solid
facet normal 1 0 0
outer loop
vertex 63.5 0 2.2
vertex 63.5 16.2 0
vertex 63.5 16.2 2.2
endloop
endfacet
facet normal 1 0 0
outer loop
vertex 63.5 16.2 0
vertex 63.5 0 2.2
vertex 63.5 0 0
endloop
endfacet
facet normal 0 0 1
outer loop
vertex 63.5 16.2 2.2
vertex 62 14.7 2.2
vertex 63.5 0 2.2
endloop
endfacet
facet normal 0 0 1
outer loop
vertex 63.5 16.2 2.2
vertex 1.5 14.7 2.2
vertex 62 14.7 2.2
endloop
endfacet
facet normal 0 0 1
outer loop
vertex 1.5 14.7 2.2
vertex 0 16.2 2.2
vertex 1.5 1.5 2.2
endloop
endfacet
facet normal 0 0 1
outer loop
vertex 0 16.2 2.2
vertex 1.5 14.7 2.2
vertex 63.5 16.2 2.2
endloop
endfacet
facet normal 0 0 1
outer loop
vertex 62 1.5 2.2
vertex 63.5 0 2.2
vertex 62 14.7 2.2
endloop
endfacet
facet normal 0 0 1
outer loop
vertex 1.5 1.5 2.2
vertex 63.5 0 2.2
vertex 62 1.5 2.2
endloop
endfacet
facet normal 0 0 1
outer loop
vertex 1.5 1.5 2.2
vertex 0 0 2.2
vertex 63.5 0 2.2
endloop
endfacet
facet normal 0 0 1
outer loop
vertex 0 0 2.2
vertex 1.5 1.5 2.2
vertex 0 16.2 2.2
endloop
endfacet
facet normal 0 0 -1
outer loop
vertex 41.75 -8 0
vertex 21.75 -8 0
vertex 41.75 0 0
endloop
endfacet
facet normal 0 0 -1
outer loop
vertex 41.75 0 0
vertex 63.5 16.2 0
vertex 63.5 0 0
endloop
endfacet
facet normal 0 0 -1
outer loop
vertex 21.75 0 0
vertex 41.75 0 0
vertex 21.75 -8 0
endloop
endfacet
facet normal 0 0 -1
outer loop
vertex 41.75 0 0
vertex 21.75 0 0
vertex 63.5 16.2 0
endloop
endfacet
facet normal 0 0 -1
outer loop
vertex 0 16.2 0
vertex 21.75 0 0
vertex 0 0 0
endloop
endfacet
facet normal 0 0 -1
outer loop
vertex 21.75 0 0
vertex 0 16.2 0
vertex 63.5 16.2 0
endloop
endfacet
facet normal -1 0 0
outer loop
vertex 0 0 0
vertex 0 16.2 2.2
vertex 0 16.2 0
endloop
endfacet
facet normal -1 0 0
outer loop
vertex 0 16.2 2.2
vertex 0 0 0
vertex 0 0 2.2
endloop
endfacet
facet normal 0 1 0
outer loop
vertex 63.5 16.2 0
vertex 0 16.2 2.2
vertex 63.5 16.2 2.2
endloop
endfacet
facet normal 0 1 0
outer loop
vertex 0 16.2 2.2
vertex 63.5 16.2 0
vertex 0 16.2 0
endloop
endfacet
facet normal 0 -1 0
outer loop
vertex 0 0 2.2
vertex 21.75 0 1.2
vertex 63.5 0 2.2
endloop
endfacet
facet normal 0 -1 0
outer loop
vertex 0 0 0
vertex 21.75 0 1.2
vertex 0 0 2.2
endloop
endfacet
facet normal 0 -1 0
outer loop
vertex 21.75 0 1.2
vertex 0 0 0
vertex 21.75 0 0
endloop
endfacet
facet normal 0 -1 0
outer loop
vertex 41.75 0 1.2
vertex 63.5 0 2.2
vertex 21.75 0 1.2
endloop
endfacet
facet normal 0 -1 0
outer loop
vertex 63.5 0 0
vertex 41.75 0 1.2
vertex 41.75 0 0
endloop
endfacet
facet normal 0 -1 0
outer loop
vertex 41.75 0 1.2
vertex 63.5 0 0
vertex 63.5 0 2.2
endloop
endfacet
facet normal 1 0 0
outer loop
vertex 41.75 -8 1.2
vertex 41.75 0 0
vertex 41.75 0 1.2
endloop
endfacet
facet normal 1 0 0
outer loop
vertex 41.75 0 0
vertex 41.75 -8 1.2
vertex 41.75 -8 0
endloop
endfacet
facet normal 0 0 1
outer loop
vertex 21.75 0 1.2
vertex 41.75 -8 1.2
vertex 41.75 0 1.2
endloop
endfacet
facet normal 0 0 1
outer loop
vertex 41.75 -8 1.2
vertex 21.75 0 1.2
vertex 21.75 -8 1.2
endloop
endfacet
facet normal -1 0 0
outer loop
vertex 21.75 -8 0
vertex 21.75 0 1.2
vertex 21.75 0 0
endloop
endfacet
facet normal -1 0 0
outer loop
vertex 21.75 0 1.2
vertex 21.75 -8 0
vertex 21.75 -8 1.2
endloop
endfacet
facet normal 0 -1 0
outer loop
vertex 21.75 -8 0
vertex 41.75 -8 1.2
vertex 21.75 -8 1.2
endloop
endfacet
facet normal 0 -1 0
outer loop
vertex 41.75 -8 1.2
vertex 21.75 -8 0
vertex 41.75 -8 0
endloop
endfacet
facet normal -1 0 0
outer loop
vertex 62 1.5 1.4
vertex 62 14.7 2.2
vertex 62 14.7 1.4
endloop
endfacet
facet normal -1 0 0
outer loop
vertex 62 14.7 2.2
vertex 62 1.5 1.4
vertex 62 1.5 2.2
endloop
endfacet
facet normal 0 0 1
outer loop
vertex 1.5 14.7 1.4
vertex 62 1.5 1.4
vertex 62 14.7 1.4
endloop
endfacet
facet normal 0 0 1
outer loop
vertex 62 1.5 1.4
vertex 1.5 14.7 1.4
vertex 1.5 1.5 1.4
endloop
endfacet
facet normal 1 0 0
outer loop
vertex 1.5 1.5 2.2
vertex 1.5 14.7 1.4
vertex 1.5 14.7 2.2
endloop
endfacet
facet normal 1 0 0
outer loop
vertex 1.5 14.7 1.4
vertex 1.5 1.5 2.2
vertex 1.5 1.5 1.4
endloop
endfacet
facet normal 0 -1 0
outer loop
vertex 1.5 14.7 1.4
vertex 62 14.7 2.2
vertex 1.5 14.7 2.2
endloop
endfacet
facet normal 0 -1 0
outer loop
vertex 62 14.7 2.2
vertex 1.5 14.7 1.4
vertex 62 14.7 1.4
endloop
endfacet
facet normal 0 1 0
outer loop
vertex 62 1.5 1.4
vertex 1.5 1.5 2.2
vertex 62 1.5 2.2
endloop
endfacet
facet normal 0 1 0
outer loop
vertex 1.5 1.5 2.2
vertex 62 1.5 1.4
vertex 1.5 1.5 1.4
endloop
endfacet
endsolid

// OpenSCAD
// Holder for a printed 60 x 12.7 mm plate (tools in osoba-5-alpr/tools/generate_plates.py).
// Keeps the plate flat and perpendicular - important for ALPR. Glue the tab to the toy car.
plate_w = 60.5; plate_h = 13.2; depth = 0.8; frame = 1.5; tab = 8; $fn = 24;

difference() {
    union() {
        cube([plate_w + 2 * frame, plate_h + 2 * frame, 2.2]);
        translate([(plate_w + 2 * frame) / 2 - 10, -tab, 0]) cube([20, tab + 1, 1.2]);   // glue tab
    }
    translate([frame, frame, 2.2 - depth]) cube([plate_w, plate_h, depth + 1]);
}
